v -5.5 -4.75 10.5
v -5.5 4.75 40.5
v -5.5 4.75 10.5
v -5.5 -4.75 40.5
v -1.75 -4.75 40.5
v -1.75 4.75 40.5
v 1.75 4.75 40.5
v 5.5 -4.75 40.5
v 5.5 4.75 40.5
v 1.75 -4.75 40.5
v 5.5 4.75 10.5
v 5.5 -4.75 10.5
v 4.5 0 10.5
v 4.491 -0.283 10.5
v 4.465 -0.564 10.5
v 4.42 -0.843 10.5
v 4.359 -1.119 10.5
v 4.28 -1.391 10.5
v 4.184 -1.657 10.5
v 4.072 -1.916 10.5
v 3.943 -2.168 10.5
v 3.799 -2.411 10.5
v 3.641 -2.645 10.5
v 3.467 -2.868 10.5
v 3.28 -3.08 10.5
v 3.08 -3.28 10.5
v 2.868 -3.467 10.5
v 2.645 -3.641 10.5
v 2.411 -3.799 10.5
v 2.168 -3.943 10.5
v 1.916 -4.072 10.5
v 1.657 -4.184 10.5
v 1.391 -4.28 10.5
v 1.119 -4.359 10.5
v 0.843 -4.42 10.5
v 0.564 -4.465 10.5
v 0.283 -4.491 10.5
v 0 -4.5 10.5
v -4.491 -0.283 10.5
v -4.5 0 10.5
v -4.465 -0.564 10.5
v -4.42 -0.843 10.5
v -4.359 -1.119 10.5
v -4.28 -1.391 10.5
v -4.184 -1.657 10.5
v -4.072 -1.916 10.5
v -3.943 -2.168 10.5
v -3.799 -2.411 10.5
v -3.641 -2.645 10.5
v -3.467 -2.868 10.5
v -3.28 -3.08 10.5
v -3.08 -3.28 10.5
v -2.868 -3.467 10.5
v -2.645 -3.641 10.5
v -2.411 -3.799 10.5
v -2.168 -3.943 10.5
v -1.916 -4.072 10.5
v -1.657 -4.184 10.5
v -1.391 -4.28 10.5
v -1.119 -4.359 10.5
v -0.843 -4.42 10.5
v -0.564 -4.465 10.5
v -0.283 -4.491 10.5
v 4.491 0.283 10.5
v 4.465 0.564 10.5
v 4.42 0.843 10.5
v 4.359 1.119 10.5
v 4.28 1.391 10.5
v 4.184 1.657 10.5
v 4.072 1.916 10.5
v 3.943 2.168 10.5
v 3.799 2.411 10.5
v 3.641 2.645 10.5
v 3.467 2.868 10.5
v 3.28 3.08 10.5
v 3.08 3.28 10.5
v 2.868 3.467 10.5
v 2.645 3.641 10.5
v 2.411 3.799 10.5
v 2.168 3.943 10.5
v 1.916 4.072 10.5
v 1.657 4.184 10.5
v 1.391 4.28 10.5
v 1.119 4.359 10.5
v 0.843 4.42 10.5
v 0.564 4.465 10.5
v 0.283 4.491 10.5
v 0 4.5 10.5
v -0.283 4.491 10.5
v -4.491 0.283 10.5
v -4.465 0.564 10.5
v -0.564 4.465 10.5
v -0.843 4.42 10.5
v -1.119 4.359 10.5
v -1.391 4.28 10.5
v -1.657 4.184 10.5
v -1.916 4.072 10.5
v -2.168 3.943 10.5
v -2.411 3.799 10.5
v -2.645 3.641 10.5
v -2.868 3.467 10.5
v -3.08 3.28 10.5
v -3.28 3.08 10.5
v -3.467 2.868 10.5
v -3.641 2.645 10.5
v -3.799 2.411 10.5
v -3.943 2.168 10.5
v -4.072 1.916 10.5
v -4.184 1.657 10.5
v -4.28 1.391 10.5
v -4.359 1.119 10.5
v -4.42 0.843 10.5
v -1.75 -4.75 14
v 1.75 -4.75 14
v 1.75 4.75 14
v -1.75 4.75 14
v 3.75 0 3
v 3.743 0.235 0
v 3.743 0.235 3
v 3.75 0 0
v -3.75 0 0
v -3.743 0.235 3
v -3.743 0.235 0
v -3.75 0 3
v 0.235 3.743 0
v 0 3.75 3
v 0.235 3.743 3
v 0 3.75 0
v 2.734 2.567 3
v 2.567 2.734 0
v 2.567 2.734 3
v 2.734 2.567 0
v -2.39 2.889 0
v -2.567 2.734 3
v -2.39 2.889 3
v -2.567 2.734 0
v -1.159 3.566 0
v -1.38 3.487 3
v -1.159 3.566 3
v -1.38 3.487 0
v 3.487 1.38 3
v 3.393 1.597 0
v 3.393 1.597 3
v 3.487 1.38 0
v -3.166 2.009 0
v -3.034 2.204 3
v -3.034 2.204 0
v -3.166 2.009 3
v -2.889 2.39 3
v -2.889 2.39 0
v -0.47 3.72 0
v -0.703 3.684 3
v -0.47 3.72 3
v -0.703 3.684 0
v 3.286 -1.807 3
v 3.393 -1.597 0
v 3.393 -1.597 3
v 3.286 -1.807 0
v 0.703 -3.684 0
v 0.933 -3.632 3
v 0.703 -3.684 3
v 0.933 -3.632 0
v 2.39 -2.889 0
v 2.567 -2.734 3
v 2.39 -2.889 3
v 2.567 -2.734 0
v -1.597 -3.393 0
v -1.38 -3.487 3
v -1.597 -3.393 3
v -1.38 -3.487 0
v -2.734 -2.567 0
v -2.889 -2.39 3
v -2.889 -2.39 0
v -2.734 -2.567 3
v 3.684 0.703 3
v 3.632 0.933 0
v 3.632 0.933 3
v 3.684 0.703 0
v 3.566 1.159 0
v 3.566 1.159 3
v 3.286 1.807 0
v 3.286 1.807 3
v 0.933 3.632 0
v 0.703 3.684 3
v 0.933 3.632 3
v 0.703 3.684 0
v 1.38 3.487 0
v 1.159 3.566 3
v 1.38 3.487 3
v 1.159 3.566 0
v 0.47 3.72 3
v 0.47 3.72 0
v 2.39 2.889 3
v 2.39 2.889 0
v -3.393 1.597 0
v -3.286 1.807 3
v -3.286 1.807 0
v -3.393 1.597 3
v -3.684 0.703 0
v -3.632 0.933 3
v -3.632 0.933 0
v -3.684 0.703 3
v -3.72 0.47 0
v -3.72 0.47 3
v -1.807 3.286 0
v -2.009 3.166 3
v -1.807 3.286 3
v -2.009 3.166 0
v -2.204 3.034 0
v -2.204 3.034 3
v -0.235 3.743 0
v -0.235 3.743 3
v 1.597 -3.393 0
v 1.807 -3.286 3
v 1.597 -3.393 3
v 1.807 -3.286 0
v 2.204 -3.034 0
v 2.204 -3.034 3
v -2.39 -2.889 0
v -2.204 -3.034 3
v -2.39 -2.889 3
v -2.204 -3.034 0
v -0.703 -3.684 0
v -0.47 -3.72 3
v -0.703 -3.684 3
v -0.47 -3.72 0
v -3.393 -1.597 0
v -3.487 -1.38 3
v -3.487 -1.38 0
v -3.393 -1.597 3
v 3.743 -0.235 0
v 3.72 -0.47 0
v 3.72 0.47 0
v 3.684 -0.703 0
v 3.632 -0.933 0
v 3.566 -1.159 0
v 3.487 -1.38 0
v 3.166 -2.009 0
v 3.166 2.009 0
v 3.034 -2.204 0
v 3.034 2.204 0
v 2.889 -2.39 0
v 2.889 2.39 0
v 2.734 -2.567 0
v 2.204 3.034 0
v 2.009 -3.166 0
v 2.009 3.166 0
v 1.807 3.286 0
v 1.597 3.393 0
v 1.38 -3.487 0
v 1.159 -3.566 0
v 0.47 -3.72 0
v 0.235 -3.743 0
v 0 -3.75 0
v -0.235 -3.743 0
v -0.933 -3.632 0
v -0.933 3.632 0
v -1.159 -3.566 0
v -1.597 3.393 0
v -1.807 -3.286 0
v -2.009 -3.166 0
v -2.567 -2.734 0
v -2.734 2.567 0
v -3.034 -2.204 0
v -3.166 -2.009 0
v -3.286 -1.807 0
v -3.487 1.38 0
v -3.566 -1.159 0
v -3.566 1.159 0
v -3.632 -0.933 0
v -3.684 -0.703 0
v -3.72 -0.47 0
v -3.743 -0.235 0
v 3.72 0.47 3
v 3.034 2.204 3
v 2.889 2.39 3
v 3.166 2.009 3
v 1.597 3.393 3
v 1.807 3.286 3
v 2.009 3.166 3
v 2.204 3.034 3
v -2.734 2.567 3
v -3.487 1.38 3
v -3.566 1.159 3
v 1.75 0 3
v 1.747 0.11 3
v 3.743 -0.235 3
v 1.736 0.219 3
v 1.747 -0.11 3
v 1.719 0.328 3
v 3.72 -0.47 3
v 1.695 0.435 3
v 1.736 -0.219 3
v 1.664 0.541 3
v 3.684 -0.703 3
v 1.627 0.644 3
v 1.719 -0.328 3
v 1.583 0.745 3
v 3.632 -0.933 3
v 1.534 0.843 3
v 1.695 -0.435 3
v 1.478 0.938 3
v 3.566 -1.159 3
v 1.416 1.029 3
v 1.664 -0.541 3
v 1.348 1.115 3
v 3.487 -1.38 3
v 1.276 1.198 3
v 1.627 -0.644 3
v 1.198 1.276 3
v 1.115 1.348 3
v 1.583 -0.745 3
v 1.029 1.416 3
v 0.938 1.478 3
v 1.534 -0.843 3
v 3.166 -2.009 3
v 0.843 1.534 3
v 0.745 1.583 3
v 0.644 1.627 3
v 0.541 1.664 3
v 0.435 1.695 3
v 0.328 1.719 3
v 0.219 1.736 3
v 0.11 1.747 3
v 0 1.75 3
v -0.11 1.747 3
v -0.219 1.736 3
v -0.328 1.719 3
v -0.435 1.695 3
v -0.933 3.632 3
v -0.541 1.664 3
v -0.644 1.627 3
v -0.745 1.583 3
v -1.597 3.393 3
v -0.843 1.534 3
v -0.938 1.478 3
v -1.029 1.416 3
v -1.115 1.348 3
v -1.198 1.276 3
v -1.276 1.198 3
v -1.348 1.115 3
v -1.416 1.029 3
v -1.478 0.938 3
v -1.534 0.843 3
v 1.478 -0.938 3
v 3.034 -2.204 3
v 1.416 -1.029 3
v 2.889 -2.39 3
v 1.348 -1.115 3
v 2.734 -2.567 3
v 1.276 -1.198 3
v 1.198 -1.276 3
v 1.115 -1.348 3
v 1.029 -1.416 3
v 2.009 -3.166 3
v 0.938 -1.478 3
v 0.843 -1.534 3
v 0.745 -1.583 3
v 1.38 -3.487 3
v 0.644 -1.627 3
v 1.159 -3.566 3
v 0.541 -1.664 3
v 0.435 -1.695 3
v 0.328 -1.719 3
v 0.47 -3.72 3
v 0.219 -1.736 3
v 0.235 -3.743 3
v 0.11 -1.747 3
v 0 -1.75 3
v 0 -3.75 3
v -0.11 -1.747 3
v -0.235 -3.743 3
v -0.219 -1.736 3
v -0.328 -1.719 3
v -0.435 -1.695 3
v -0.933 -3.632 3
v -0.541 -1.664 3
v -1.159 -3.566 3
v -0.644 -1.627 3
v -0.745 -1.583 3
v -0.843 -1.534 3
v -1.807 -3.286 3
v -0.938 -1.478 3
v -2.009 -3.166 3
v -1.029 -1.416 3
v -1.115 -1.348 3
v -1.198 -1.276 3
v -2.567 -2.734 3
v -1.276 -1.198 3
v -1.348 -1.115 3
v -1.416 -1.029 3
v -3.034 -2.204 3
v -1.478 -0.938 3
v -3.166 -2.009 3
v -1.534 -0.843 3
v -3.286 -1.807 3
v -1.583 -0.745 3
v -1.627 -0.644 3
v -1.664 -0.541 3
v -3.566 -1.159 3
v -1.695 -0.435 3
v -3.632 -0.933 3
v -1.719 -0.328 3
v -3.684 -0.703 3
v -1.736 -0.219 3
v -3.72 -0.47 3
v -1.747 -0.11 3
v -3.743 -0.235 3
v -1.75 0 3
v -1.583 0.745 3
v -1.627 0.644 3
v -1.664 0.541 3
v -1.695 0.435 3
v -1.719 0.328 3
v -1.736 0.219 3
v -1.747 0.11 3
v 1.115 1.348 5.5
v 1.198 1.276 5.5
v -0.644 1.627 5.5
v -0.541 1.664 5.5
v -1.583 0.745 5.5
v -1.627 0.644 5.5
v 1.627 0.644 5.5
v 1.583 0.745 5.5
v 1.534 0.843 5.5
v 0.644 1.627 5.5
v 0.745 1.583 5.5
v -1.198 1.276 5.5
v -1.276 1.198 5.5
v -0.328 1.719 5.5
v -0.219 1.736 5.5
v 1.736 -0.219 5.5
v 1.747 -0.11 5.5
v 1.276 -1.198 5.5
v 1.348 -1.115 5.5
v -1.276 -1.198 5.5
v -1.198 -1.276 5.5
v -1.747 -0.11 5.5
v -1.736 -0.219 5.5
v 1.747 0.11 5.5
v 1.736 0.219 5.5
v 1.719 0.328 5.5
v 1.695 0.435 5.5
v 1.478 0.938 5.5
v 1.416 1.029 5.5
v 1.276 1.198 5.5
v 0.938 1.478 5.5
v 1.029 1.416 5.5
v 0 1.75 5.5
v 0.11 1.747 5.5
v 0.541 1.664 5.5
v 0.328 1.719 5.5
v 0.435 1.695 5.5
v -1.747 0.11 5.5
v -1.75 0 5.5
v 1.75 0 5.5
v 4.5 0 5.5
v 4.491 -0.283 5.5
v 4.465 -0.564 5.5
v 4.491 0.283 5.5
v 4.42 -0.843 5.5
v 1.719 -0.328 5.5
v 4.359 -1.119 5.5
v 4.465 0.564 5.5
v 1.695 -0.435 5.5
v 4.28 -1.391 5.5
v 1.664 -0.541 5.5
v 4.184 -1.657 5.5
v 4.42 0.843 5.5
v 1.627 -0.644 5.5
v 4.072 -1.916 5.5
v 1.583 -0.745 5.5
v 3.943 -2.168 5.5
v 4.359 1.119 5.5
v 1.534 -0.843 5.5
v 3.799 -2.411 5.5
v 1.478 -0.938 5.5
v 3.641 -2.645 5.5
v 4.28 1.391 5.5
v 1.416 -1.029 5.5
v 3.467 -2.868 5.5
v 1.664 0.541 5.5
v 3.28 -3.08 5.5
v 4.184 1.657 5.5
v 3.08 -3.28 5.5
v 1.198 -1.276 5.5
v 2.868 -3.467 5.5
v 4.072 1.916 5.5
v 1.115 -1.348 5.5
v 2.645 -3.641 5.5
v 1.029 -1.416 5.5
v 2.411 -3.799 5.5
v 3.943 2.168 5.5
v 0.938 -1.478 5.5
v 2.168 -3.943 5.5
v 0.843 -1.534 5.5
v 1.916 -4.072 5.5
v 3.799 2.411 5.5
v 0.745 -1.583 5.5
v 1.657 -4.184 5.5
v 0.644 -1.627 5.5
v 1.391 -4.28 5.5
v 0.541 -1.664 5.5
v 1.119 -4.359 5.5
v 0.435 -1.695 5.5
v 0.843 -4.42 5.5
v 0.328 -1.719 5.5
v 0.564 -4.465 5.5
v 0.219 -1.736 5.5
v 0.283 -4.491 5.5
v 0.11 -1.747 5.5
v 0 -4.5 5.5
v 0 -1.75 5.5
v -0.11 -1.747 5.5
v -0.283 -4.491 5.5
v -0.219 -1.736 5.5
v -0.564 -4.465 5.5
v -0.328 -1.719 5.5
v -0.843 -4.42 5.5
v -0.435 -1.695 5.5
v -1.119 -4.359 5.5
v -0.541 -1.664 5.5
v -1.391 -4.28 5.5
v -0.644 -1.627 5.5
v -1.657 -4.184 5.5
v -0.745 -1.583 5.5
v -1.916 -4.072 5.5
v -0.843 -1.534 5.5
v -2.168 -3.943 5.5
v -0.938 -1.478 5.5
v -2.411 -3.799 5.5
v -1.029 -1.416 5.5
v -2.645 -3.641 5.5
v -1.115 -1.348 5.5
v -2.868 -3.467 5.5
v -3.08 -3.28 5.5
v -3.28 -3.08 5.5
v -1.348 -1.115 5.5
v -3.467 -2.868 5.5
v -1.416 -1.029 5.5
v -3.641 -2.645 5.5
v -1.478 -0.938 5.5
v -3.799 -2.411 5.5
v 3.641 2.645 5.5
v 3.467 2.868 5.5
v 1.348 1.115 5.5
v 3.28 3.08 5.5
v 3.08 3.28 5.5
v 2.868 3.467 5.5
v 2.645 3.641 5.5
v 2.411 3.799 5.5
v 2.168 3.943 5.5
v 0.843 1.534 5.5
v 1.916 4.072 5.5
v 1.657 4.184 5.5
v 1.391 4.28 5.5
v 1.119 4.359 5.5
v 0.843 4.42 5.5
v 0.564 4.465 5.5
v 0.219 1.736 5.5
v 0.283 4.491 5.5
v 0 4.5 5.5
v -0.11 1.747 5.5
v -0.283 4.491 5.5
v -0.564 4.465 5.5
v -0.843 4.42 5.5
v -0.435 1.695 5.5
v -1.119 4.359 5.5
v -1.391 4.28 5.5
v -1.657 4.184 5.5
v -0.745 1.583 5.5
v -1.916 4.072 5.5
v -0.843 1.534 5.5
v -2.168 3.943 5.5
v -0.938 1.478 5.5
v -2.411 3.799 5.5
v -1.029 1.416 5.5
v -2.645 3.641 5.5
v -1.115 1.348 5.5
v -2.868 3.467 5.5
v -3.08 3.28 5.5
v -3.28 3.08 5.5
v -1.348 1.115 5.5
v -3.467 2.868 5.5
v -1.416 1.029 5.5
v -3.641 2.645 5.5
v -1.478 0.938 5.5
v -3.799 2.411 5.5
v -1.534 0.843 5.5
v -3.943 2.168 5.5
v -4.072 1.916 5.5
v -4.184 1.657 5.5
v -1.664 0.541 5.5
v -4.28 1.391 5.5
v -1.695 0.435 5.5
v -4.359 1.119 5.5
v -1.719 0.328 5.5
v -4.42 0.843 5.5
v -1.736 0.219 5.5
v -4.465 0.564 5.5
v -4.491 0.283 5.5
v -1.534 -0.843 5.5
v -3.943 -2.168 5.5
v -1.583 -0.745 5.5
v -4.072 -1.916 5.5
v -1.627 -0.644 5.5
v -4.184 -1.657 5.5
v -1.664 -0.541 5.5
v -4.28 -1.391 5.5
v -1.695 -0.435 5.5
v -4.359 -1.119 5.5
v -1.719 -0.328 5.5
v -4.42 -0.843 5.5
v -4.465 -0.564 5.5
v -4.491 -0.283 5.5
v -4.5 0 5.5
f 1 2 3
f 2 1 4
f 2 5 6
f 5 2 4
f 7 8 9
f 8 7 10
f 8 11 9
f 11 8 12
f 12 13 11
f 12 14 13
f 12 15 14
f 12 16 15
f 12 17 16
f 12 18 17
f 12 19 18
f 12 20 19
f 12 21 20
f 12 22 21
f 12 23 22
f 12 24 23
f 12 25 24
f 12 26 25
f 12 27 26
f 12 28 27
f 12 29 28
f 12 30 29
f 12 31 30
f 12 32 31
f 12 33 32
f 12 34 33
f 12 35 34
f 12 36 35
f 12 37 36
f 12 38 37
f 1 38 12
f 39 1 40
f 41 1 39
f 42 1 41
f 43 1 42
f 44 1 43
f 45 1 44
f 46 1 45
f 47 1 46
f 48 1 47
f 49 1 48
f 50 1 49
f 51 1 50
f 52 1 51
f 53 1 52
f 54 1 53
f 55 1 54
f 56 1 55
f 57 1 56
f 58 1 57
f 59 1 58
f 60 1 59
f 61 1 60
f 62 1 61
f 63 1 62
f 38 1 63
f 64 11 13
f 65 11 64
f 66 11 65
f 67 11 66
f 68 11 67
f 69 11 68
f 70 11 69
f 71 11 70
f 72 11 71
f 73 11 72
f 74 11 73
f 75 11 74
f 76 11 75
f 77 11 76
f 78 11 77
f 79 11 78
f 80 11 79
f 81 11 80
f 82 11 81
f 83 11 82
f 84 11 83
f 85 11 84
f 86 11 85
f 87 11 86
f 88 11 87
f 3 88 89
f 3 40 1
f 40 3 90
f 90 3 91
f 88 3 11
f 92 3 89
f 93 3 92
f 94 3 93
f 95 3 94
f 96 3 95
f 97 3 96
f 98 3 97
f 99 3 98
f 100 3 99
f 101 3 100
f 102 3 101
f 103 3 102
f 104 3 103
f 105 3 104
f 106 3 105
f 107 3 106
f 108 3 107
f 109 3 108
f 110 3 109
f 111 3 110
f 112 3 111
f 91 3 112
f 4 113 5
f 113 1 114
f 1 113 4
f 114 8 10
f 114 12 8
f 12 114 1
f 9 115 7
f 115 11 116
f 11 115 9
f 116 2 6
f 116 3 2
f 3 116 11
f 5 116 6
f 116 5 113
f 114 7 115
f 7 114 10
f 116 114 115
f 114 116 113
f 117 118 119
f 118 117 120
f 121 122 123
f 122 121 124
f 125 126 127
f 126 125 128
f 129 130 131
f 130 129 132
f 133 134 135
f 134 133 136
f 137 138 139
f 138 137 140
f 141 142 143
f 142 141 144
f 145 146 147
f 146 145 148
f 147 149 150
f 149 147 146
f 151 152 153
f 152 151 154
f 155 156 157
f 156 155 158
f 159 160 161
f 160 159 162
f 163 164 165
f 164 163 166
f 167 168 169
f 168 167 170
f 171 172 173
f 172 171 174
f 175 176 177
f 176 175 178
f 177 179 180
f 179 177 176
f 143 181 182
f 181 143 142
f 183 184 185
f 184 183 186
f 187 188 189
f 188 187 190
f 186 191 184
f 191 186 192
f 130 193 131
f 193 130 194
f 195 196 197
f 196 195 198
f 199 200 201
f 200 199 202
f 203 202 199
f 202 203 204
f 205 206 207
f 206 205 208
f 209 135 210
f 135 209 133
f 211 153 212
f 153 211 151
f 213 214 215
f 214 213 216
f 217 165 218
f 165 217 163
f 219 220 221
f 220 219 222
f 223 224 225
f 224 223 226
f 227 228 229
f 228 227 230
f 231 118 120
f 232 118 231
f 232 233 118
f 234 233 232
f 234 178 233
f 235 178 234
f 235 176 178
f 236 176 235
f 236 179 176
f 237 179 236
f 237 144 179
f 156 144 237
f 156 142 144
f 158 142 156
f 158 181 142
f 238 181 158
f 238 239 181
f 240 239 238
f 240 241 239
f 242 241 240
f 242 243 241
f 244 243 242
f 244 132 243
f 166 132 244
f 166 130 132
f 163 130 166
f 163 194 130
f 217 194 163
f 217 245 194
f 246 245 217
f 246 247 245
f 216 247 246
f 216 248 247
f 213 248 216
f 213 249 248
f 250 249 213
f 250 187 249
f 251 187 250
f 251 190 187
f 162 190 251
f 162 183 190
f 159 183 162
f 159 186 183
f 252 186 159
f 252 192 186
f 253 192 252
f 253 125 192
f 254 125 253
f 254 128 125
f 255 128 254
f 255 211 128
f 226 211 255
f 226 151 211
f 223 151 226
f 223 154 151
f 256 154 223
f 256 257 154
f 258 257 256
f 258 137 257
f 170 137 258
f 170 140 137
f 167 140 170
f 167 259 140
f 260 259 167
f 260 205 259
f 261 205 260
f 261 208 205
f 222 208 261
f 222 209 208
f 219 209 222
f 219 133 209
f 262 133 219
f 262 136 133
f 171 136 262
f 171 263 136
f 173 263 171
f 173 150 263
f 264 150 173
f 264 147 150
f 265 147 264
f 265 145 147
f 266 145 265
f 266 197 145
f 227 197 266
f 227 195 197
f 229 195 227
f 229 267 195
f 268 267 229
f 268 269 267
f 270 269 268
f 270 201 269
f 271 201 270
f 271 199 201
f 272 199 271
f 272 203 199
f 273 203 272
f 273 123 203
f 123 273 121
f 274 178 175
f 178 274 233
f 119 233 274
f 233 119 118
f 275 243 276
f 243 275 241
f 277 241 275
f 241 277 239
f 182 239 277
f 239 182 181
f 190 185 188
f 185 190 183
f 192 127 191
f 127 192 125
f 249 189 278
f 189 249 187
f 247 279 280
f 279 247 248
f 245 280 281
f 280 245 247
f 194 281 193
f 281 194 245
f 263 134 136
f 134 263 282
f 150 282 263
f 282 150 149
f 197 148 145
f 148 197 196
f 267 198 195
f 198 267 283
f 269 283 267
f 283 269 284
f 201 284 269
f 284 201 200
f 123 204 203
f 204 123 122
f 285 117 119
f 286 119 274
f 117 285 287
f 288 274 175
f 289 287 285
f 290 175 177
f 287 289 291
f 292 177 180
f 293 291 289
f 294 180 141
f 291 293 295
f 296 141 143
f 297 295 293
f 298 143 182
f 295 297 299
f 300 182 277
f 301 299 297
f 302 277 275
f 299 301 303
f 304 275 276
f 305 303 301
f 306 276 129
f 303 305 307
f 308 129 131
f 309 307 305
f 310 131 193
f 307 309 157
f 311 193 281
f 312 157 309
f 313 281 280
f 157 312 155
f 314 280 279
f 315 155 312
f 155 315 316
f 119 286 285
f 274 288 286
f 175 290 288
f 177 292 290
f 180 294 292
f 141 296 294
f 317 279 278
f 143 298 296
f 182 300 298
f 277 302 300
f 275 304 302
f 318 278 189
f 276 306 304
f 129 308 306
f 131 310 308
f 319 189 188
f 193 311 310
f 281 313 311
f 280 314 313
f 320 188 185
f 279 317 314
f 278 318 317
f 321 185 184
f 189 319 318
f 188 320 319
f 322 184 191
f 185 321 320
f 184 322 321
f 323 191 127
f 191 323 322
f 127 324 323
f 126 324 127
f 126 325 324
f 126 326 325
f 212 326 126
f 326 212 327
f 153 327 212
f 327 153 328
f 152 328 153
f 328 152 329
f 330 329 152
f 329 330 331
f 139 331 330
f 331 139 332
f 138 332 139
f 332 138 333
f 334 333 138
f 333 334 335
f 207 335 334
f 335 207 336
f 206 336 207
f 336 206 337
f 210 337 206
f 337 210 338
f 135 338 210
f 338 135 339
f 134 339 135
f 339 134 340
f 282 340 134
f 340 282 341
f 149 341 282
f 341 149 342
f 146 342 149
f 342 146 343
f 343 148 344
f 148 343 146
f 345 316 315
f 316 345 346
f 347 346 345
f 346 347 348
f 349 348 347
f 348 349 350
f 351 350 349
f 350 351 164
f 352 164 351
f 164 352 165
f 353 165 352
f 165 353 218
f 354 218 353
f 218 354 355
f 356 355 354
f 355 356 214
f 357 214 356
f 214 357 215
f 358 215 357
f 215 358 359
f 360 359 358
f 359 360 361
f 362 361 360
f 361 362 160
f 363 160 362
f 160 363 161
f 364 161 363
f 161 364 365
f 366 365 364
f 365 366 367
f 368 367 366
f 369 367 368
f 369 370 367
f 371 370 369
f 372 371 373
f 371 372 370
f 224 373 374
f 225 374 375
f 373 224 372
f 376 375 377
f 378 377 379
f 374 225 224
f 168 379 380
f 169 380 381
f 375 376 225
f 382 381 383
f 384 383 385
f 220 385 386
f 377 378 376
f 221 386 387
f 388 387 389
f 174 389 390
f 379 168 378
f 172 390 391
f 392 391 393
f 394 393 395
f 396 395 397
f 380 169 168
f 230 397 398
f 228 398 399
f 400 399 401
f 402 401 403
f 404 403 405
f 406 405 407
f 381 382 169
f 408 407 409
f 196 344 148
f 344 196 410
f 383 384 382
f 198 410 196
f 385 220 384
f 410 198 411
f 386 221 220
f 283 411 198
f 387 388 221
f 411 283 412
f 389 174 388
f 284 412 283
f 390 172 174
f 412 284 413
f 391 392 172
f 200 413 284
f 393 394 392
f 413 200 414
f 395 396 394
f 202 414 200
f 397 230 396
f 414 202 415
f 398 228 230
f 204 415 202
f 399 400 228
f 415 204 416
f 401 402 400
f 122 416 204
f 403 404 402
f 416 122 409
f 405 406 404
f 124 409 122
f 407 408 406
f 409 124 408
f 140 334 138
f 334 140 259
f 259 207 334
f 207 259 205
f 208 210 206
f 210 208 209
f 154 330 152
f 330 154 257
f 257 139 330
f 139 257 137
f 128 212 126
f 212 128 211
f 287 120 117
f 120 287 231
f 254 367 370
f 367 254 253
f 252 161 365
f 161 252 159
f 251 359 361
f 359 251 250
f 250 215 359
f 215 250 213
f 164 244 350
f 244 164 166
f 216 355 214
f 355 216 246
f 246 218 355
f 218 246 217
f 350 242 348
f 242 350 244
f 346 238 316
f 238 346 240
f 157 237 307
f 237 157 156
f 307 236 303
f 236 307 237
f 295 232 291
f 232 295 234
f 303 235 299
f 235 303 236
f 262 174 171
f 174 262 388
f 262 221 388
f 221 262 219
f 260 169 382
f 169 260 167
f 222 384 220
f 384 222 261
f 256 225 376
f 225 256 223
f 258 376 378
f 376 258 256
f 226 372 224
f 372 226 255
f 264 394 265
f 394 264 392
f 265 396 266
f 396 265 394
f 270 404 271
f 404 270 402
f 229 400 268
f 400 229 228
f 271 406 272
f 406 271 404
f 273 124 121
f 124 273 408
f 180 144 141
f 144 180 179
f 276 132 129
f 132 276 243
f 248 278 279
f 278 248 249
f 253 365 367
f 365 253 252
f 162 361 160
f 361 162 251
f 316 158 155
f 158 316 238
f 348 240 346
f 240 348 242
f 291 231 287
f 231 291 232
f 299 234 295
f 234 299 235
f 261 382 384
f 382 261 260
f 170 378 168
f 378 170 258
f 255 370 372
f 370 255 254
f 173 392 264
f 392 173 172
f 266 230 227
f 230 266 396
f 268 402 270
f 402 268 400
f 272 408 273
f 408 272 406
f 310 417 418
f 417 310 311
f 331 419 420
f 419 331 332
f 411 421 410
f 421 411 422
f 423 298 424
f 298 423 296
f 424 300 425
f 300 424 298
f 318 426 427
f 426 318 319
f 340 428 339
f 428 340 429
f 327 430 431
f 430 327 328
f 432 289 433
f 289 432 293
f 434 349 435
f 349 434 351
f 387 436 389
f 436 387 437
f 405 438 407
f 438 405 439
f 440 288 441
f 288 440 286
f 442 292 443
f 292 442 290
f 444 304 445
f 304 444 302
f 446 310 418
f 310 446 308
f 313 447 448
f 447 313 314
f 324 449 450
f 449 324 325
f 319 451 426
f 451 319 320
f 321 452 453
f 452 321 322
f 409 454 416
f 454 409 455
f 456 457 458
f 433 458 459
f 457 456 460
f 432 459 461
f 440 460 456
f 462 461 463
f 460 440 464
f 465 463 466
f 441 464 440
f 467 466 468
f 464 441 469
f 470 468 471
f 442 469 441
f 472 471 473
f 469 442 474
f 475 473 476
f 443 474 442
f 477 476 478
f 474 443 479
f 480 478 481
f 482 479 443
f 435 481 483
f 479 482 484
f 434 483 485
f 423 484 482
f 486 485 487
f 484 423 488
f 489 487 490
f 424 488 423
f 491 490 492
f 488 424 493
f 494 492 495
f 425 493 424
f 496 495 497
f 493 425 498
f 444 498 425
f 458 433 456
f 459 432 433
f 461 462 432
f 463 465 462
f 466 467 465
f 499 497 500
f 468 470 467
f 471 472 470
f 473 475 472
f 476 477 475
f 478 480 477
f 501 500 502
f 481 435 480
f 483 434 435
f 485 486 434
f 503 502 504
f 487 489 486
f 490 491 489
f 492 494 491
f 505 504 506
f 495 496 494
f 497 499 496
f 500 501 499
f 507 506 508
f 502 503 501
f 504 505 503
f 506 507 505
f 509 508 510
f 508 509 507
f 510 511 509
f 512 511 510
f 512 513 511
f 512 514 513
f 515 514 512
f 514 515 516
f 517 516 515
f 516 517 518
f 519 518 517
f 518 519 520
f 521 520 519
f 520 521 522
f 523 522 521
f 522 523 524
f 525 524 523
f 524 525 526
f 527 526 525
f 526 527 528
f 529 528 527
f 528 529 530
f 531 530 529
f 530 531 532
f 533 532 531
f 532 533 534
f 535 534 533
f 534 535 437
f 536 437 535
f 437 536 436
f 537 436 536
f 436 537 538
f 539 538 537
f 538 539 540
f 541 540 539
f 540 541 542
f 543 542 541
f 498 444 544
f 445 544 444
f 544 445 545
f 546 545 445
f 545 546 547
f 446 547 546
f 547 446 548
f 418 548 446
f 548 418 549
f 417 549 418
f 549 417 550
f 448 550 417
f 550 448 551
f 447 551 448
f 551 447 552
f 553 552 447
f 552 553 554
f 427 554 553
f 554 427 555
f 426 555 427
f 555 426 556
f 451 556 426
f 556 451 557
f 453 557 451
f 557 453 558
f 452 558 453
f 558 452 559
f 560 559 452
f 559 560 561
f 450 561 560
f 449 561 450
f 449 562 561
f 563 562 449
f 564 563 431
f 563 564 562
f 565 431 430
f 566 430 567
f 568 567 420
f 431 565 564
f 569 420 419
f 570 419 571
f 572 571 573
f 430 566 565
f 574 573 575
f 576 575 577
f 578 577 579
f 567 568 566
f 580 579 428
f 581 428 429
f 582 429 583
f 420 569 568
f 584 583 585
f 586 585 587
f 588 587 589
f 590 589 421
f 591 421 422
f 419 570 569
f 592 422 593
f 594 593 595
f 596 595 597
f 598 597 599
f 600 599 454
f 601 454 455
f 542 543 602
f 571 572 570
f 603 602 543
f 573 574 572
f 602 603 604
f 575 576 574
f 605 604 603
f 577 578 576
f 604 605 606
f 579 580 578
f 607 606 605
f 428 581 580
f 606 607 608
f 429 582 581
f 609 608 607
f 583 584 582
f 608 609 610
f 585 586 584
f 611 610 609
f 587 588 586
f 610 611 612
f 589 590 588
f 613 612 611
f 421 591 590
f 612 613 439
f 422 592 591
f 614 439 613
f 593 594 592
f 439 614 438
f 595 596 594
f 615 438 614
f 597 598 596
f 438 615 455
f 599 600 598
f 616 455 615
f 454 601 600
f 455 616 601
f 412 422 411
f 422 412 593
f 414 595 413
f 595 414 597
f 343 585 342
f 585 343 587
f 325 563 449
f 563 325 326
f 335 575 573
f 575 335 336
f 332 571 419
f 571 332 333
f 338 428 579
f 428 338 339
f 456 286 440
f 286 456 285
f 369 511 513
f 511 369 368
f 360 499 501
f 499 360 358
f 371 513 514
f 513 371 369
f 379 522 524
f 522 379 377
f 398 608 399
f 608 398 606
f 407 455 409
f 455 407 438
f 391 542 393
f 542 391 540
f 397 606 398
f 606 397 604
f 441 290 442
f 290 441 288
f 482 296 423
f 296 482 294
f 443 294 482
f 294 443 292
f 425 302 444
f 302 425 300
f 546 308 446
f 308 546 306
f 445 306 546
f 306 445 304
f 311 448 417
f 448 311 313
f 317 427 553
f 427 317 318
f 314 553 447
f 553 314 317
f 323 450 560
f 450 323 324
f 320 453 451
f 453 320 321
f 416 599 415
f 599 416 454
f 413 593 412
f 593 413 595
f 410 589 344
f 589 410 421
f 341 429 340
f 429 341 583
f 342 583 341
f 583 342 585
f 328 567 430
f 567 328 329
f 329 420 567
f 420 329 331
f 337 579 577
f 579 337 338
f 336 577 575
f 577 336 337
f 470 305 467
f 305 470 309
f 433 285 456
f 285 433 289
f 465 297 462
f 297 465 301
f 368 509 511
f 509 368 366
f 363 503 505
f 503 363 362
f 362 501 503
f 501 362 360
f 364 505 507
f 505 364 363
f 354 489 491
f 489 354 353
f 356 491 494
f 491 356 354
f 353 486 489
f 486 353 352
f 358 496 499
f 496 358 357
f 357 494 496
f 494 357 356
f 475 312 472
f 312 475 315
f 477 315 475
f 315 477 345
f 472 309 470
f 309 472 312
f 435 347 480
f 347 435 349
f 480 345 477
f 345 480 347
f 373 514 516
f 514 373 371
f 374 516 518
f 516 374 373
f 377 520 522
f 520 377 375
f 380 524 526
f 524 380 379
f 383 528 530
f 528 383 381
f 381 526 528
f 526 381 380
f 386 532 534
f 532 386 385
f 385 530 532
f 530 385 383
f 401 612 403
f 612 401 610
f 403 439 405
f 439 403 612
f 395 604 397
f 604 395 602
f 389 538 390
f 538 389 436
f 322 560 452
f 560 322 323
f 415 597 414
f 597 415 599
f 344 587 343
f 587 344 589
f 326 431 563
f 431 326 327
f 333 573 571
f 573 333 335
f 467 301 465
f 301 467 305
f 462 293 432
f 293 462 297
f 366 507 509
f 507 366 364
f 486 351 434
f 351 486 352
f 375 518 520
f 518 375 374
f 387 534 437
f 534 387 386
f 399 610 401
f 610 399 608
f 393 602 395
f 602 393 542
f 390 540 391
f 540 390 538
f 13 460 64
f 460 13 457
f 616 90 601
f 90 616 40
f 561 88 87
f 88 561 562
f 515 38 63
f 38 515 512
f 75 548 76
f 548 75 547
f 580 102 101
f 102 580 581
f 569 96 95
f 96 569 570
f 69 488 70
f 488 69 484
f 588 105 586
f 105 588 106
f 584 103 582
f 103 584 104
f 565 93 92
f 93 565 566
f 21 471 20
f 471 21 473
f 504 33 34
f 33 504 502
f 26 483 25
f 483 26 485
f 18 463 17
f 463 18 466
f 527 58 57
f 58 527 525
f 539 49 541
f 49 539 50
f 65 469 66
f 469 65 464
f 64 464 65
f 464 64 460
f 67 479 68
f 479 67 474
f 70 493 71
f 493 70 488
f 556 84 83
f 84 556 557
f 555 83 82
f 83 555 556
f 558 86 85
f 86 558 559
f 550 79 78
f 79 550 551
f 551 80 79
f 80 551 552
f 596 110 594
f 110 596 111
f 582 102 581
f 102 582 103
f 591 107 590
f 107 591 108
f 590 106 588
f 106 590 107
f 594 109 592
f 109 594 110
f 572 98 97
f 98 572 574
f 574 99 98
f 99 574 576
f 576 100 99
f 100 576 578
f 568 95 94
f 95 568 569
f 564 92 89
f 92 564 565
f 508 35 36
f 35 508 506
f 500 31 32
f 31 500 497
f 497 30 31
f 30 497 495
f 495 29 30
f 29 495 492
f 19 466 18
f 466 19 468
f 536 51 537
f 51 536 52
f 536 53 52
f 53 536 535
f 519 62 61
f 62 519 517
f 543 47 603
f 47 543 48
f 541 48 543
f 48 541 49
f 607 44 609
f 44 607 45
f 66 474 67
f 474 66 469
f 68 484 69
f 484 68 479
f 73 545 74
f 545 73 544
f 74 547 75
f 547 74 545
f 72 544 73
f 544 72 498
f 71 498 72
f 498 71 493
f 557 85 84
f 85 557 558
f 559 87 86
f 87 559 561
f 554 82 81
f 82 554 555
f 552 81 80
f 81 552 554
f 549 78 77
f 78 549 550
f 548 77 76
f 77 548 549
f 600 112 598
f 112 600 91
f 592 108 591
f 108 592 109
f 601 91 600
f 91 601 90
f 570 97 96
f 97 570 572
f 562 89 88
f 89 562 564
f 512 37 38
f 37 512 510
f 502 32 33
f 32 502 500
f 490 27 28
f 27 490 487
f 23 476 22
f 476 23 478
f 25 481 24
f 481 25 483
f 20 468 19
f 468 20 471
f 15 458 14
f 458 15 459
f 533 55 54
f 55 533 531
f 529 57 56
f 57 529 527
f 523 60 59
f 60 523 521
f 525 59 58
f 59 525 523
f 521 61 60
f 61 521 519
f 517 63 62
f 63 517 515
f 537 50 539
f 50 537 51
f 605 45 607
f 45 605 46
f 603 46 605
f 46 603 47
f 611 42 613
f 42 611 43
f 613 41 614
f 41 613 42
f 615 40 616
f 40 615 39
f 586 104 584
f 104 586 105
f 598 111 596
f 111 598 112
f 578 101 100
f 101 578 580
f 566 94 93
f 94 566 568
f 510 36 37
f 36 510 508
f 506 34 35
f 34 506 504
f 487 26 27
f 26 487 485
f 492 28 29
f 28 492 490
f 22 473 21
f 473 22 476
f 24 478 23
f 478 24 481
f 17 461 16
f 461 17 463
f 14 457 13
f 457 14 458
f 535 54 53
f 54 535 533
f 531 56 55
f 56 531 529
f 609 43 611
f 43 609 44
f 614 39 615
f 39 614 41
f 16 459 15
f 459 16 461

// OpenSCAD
cylinder(d=7.5, h=3, $fn=100);
translate([0,0,3])
cylinder(d=3.5, h=2.5, $fn=100);
translate([0,0,5.5])
cylinder(d=9, h=5, $fn=100);
translate([0,0,30/2+10.5])
difference(){
cube([11,9.5,30], center=true);
translate([0,0,3.5])
cube([3.5,10,30], center=true);
}
